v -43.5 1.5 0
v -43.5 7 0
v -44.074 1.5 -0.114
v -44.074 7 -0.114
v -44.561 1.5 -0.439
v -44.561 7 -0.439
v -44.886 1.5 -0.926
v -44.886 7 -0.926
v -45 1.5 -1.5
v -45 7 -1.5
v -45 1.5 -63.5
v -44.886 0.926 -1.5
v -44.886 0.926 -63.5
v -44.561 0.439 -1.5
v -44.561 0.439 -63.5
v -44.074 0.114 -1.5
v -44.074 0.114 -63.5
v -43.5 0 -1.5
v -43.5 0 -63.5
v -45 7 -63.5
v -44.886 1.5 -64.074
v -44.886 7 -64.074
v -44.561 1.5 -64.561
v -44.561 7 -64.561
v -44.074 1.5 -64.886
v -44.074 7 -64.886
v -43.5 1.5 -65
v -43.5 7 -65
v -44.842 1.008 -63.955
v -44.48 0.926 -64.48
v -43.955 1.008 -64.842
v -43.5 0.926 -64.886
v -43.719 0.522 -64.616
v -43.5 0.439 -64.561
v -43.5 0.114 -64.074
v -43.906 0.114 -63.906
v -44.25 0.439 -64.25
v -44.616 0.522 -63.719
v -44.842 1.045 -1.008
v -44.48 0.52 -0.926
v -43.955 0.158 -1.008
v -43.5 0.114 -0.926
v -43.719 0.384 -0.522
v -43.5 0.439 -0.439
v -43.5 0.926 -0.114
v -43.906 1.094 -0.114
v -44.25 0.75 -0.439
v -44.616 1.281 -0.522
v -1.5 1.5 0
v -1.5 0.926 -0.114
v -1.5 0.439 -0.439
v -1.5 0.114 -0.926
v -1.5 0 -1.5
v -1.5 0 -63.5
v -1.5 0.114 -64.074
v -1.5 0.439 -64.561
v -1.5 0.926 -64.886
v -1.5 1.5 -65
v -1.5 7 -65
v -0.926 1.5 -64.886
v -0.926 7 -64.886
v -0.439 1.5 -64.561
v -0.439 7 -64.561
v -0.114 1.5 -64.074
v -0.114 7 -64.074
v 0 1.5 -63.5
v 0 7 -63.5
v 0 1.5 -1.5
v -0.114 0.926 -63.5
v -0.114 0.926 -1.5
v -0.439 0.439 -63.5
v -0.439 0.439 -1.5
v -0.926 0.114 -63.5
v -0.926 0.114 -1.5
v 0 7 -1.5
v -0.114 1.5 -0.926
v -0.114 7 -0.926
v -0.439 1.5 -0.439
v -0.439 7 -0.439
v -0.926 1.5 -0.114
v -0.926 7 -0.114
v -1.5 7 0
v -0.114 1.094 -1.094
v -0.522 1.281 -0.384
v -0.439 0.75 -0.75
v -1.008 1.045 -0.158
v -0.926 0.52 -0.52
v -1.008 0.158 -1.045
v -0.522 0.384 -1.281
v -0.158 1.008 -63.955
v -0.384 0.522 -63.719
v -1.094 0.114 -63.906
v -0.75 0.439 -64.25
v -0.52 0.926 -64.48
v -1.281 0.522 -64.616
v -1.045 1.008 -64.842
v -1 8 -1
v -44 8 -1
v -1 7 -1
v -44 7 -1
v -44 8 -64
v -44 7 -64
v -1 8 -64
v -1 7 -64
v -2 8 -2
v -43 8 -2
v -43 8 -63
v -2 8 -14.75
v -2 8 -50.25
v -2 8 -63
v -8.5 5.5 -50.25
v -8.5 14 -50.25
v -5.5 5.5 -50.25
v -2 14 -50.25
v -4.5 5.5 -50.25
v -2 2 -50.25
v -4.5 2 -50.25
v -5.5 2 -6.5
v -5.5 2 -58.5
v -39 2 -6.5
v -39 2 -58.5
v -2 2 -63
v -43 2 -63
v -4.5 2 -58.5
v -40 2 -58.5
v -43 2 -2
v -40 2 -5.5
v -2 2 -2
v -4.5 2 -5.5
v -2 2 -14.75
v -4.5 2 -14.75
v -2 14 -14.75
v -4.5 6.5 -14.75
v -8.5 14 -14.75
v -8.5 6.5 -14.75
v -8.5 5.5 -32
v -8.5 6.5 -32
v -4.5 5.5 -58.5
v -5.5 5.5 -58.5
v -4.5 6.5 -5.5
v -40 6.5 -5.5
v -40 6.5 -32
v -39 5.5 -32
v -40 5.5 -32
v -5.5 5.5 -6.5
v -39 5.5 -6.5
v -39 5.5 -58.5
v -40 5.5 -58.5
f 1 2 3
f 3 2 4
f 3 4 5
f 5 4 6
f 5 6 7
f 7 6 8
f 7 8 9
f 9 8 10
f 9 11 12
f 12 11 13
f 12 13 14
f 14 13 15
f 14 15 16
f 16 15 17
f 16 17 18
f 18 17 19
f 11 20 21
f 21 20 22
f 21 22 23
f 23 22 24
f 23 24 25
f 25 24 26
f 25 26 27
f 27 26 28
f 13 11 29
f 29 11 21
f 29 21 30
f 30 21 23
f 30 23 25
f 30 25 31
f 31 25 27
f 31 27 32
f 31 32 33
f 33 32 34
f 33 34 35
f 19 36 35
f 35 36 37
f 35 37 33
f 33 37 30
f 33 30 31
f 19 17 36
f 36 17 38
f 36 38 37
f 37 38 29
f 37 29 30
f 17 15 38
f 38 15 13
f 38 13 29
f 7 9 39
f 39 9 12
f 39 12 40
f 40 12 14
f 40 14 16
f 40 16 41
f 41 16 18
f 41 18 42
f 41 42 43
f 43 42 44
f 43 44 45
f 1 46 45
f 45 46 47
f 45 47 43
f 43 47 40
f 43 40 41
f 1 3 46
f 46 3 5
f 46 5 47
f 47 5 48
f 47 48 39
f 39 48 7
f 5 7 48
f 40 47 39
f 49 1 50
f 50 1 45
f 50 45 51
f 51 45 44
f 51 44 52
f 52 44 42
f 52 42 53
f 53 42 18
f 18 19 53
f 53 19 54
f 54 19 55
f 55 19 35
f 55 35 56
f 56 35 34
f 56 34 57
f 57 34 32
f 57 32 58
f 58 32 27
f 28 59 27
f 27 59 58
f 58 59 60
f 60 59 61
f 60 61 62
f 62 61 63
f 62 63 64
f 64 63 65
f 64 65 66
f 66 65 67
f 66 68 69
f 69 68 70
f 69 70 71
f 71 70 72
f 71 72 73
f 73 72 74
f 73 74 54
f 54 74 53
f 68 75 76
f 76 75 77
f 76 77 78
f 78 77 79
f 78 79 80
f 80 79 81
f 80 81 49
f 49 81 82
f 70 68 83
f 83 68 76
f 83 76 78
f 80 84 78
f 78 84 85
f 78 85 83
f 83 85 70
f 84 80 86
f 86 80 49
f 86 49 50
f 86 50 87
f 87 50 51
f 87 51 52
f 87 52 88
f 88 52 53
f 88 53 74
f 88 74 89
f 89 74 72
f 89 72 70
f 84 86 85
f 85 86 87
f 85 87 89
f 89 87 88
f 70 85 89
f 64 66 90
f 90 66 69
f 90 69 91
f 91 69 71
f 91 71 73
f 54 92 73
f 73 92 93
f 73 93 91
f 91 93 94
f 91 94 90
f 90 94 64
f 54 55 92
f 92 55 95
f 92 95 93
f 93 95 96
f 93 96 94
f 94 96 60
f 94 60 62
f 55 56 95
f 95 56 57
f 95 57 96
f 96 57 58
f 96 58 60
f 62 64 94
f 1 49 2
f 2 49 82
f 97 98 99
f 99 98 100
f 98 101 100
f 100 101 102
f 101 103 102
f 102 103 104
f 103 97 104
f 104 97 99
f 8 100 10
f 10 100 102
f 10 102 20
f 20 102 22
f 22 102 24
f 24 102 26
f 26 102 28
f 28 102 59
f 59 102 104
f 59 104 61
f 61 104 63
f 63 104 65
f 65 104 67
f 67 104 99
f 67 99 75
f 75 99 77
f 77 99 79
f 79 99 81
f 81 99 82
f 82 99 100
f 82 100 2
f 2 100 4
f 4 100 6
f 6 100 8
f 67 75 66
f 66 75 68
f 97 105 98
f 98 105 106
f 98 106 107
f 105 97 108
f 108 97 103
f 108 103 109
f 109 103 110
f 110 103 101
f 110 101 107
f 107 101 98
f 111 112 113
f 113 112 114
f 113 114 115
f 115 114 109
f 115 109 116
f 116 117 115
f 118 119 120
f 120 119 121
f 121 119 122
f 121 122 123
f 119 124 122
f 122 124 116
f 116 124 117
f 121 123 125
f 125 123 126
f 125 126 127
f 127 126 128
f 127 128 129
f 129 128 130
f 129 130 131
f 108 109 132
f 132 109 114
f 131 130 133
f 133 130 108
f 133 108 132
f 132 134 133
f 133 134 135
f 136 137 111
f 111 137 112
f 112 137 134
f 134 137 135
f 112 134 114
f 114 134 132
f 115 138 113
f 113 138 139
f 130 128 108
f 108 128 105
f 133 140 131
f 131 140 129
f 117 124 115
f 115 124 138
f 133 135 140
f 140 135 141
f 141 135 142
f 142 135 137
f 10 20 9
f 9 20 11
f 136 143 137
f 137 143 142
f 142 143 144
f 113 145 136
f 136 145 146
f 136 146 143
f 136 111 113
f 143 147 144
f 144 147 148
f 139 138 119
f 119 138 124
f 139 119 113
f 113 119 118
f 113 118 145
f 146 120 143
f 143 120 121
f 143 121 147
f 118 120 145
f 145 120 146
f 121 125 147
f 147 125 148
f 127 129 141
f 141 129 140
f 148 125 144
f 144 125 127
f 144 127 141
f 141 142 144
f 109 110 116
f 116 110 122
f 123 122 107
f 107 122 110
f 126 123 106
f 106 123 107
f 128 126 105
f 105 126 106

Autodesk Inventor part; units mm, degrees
ref_plane "YZ Plane" through (0, 0, 0) normal (1, 0, 0) x (0, 1, 0)
ref_plane "XZ Plane" through (0, 0, 0) normal (0, 1, 0) x (-1, 0, 0)
ref_plane "XY Plane" through (0, 0, 0) normal (0, 0, 1) x (1, 0, 0)
sketch "Sketch1" plane through (0, 0, 0) normal (0, 1, 0) x (-1, 0, 0)
  line L0 (0, 0) -> (45, 0)
  line L1 (45, 0) -> (45, -65)
  line L2 (45, -65) -> (0, -65)
  line L3 (0, -65) -> (0, 0)
  dimension "d0" = 45
  dimension "d1" = 65
extrude "Extrusion1" add sketch "Sketch1" along normal blind 2
sketch "Sketch2" plane through (0, 2, 0) normal (0, 1, 0) x (1, 0, 0)
  line L0 (0, 65) -> (0, 0) projected
  line L1 (0, 0) -> (-45, 0) projected
  line L2 (-45, 0) -> (-45, 65) projected
  line L3 (-45, 65) -> (0, 65) projected
  line L4 (-45, 0) -> (0, 0) projected
  line L5 (-45, 65) -> (-45, 0) projected
  line L6 (0, 65) -> (-45, 65) projected
  line L7 (0, 0) -> (0, 65) projected
  line L8 (-2, 2) -> (-43, 2)
  line L9 (-43, 2) -> (-43, 63)
  line L10 (-43, 63) -> (-2, 63)
  line L11 (-2, 63) -> (-2, 2)
  dimension "d4" = 2
  dimension "d5" = 2
  dimension "d6" = 2
  dimension "d7" = 2
extrude "Extrusion2" add sketch "Sketch2" along normal blind 2
sketch "Sketch3" plane through (0, 2, 0) normal (0, 1, 0) x (1, 0, 0)
  line L0 (-5.5, 6.5) -> (-39, 6.5)
  line L1 (-39, 6.5) -> (-39, 57.5)
  line L2 (-39, 57.5) -> (-5.5, 57.5)
  line L3 (-5.5, 57.5) -> (-5.5, 6.5)
  line L4 (0, 0) -> (0, 65) construction
  line L5 (0, 32.5) -> (-39, 32.5) construction
  line L6 (-45, 0) -> (0, 0) construction
  line L7 (-22.5, 0) -> (-22.5, 65) construction
  line L8 (0, 65) -> (-45, 65) construction
  line L9 (-4.5, 58.5) -> (-40, 58.5)
  line L10 (-40, 58.5) -> (-40, 5.5)
  line L11 (-40, 5.5) -> (-4.5, 5.5)
  line L12 (-4.5, 5.5) -> (-4.5, 58.5)
  line L13 (-2, 2) -> (-2, 63) projected
  line L14 (-2, 63) -> (-43, 63) projected
  line L15 (-43, 63) -> (-43, 2) projected
  line L16 (-43, 2) -> (-2, 2) projected
  line L17 (0, 65) -> (0, 0) projected
  line L18 (0, 0) -> (-45, 0) projected
  line L19 (-45, 0) -> (-45, 65) projected
  line L20 (-45, 65) -> (0, 65) projected
  dimension "d10" = 33.5
  dimension "d11" = 51
  dimension "d12" = 26
  dimension "d13" = 17
  dimension "d14" = 1
  dimension "d15" = 1
  dimension "d16" = 1
  dimension "d17" = 1
  dimension "d25" = 51
extrude "Extrusion3" add sketch "Sketch3" along normal blind 3.5 contours L12 L11 L10 L9
sketch "Sketch4" plane through (-4.5, 2, -58.5) normal (0, 0, -1) x (-1, 0, 0)
  line L0 (35.5, 0) -> (0, 0) projected
  line L1 (35.5, 0) -> (35.5, 3.5) projected
  line L2 (0, 3.5) -> (35.5, 3.5) projected
  line L3 (0, 0) -> (0, 3.5) projected
  line L4 (1, 3.5) -> (34.5, 3.5)
  line L5 (34.5, 3.5) -> (34.5, 0)
  line L6 (34.5, 0) -> (1, 0)
  line L7 (1, 0) -> (1, 3.5)
  point P0 (-4.5, -2)
  point P1 (1, 0)
  point P2 (34.5, 0)
  dimension "d20" = 1
  dimension "d21" = 1
  dimension "d22" = 0
extrude "Extrusion4" cut sketch "Sketch4" against normal blind 2 contours L0 L7 L2 L5
sketch "Sketch5" plane through (0, 5.5, 0) normal (0, 1, 0) x (1, 0, 0)
  line L0 (-39, 58.5) -> (-39, 6.5) projected
  line L1 (-39, 6.5) -> (-5.5, 6.5) projected
  line L2 (-5.5, 6.5) -> (-5.5, 58.5) projected
  line L3 (-5.5, 58.5) -> (-4.5, 58.5) projected
  line L4 (-4.5, 58.5) -> (-4.5, 5.5) projected
  line L5 (-4.5, 5.5) -> (-40, 5.5) projected
  line L6 (-40, 5.5) -> (-40, 58.5) projected
  line L7 (-40, 58.5) -> (-39, 58.5) projected
  line L8 (-40, 5.5) -> (-4.5, 5.5)
  line L9 (-4.5, 5.5) -> (-4.5, 32)
  line L10 (-4.5, 32) -> (-40, 32)
  line L11 (-40, 32.75) -> (-40, 5.5)
  line L12 (-4.5, 32) -> (-40, 32)
  line L13 (-40, 32) -> (-40, 5.5)
  line L14 (-40, 5.5) -> (-4.5, 5.5)
  line L15 (-4.5, 5.5) -> (-4.5, 32)
  line L16 (-40, 58.5) -> (-40, 5.5) projected
  line L17 (-40, 5.5) -> (-4.5, 5.5) projected
  line L18 (-4.5, 5.5) -> (-4.5, 58.5) projected
  line L19 (-4.5, 32) -> (-40, 32)
  line L20 (-40, 32) -> (-40, 5.5)
  line L21 (-40, 5.5) -> (-4.5, 5.5)
  line L22 (-4.5, 5.5) -> (-4.5, 32.75)
  point P0 (0, 0)
  point P1 (-5.5, 32)
  point P2 (-39, 32)
extrude "Extrusion6" add sketch "Sketch5" along normal blind 1 contours L10 L2 L1 L0 | L0 L1 L2 L10 L4 L5 L6
fillet "Fillet1" radius 1.5 1 edges at (-22.5, 0, 0)
fillet "Fillet2" radius 1.5 1 edges at (-22.5, 0, -65)
sketch "Sketch13" plane through (0, 6.5, 0) normal (0, 1, 0) x (1, 0, 0)
  line L0 (0, 0) -> (0, 65) projected
  line L1 (-4.5, 5.5) -> (-4.5, 32) projected
  line L2 (-4.5, 32) -> (-4.5, 58.5) projected
  line L3 (-5.5, 6.5) -> (-5.5, 58.5) projected
  line L4 (-40, 32) -> (-40, 5.5) construction
  line L5 (-40, 5.5) -> (-4.5, 5.5) construction
  line L6 (-4.5, 5.5) -> (-4.5, 32) construction
  line L7 (-4.5, 32) -> (-40, 32) construction
  line L8 (-2, 63) -> (-2, 2) projected
  line L9 (-40, 5.5) -> (-4.5, 5.5) projected
  line L10 (-4.5, 32) -> (-40, 32) projected
  line L11 (-2, 50.25) -> (-8.5, 50.25)
  line L12 (-8.5, 50.25) -> (-8.5, 14.75)
  line L13 (-8.5, 14.75) -> (-2, 14.75)
  line L14 (-2, 14.75) -> (-2, 50.25)
  line L15 (-2, 2) -> (-43, 2) projected
  point P0 (-5.75, 59.75)
  point P1 (-4.5, 14.75)
  point P2 (-2, 14.75)
  point P3 (-4.5, 50.25)
  dimension "d58" = 6.5
  dimension "d59" = 35.5
  dimension "d60" = 12.75
extrude "Extrusion12" add sketch "Sketch13" along normal mid plane 15
sketch "Sketch14" plane through (-2, -1, -14.75) normal (1, 0, 0) x (0, 0, -1)
  line L0 (0, 0) -> (35.5, 0) projected
  line L1 (0, 0) -> (0, 1) projected
  line L2 (35.5, 0) -> (0, 0)
  line L3 (0, 0) -> (0, 1)
  line L4 (0, 1) -> (35.5, 1)
  line L5 (35.5, 1) -> (35.5, 0)
  point P0 (-14.75, 1)
extrude "Extrusion13" cut sketch "Sketch14" against normal through all
sketch "Sketch15" plane through (-2, 14, -50.25) normal (0, 0, -1) x (-1, 0, 0)
  line L0 (6.5, -7.5) -> (38, -7.5) projected
  line L1 (6.5, -8.5) -> (37, -8.5) projected
  line L2 (3.5, -12) -> (3.5, -8.5) projected
  line L3 (37, -12) -> (3.5, -12) projected
  line L4 (3.5, -8.5) -> (6.5, -8.5)
  line L5 (6.5, -8.5) -> (6.5, -12)
  line L6 (6.5, -12) -> (3.5, -12)
  line L7 (3.5, -12) -> (3.5, -8.5)
  point P0 (-2, -14)
extrude "Extrusion14" cut sketch "Sketch15" against normal up to surface (43.75 mm away)
sketch "Sketch16" plane through (0, 4, 0) normal (0, 1, 0) x (1, 0, 0)
  line L0 (-2, 14.75) -> (-2, 50.25) projected
  line L1 (-2, 14.75) -> (-2, 2) projected
  line L2 (-2, 2) -> (-43, 2) projected
  line L3 (-45, 0) -> (0, 0) projected
  line L4 (0, 0) -> (0, 65) projected
  line L5 (-2, 63) -> (-2, 50.25) projected
  line L6 (-43, 63) -> (-2, 63) projected
  line L7 (0, 65) -> (-45, 65) projected
  line L8 (-45, 65) -> (-45, 0) projected
  line L9 (-43, 2) -> (-43, 63) projected
  line L10 (0, 65) -> (-45, 65)
  line L11 (-45, 65) -> (-45, 0)
  line L12 (-45, 0) -> (0, 0)
  line L13 (0, 0) -> (0, 65)
  line L14 (-43, 2) -> (-2, 2)
  line L15 (-2, 2) -> (-2, 63)
  line L16 (-2, 63) -> (-43, 63)
  line L17 (-43, 63) -> (-43, 2)
extrude "Extrusion15" add sketch "Sketch16" along normal blind 4
sketch "Sketch17" plane through (0, 8, 0) normal (0, 1, 0) x (1, 0, 0)
  line L0 (0, 0) -> (0, 65) projected
  line L1 (0, 65) -> (-45, 65) projected
  line L2 (-45, 0) -> (0, 0) projected
  line L3 (-45, 65) -> (-45, 0) projected
  line L4 (-1, 64) -> (-44, 64)
  line L5 (-44, 64) -> (-44, 1)
  line L6 (-44, 1) -> (-1, 1)
  line L7 (-1, 1) -> (-1, 64)
  dimension "d71" = 1
  dimension "d72" = 1
  dimension "d73" = 1
  dimension "d74" = 1
extrude "Extrusion16" cut sketch "Sketch17" against normal blind 1
fillet "Fillet3" radius 1.5 5 edges at (0, 0.4393, -0.4393) (0, 0, -32.5) (0, 0.4393, -64.5607) (0, 4.25, -65) (0, 4.25, 0)
fillet "Fillet4" radius 1.5 5 edges at (-45, 0.4393, -0.4393) (-45, 4.25, 0) (-45, 0.4393, -64.5607) (-45, 4.25, -65) (-45, 0, -32.5)
equation "\"BendRadius\" = Thickness"
equation "\"BendReliefWidth\" = Thickness"
equation "\"BendReliefDepth\" = 0.5 * Thickness"
equation "\"CornerReliefSize\" = 4 * Thickness"
equation "\"MinimumRemnant\" = 2 * Thickness"
equation "\"TransitionRadius\" = BendRadius"
equation "\"JacobiRadiusSize\" = BendRadius"
equation "\"GapSize\" = Thickness"
equation "\"Thickness\" = 0.5"
properties part number "superior" material "ABS Plastic"
